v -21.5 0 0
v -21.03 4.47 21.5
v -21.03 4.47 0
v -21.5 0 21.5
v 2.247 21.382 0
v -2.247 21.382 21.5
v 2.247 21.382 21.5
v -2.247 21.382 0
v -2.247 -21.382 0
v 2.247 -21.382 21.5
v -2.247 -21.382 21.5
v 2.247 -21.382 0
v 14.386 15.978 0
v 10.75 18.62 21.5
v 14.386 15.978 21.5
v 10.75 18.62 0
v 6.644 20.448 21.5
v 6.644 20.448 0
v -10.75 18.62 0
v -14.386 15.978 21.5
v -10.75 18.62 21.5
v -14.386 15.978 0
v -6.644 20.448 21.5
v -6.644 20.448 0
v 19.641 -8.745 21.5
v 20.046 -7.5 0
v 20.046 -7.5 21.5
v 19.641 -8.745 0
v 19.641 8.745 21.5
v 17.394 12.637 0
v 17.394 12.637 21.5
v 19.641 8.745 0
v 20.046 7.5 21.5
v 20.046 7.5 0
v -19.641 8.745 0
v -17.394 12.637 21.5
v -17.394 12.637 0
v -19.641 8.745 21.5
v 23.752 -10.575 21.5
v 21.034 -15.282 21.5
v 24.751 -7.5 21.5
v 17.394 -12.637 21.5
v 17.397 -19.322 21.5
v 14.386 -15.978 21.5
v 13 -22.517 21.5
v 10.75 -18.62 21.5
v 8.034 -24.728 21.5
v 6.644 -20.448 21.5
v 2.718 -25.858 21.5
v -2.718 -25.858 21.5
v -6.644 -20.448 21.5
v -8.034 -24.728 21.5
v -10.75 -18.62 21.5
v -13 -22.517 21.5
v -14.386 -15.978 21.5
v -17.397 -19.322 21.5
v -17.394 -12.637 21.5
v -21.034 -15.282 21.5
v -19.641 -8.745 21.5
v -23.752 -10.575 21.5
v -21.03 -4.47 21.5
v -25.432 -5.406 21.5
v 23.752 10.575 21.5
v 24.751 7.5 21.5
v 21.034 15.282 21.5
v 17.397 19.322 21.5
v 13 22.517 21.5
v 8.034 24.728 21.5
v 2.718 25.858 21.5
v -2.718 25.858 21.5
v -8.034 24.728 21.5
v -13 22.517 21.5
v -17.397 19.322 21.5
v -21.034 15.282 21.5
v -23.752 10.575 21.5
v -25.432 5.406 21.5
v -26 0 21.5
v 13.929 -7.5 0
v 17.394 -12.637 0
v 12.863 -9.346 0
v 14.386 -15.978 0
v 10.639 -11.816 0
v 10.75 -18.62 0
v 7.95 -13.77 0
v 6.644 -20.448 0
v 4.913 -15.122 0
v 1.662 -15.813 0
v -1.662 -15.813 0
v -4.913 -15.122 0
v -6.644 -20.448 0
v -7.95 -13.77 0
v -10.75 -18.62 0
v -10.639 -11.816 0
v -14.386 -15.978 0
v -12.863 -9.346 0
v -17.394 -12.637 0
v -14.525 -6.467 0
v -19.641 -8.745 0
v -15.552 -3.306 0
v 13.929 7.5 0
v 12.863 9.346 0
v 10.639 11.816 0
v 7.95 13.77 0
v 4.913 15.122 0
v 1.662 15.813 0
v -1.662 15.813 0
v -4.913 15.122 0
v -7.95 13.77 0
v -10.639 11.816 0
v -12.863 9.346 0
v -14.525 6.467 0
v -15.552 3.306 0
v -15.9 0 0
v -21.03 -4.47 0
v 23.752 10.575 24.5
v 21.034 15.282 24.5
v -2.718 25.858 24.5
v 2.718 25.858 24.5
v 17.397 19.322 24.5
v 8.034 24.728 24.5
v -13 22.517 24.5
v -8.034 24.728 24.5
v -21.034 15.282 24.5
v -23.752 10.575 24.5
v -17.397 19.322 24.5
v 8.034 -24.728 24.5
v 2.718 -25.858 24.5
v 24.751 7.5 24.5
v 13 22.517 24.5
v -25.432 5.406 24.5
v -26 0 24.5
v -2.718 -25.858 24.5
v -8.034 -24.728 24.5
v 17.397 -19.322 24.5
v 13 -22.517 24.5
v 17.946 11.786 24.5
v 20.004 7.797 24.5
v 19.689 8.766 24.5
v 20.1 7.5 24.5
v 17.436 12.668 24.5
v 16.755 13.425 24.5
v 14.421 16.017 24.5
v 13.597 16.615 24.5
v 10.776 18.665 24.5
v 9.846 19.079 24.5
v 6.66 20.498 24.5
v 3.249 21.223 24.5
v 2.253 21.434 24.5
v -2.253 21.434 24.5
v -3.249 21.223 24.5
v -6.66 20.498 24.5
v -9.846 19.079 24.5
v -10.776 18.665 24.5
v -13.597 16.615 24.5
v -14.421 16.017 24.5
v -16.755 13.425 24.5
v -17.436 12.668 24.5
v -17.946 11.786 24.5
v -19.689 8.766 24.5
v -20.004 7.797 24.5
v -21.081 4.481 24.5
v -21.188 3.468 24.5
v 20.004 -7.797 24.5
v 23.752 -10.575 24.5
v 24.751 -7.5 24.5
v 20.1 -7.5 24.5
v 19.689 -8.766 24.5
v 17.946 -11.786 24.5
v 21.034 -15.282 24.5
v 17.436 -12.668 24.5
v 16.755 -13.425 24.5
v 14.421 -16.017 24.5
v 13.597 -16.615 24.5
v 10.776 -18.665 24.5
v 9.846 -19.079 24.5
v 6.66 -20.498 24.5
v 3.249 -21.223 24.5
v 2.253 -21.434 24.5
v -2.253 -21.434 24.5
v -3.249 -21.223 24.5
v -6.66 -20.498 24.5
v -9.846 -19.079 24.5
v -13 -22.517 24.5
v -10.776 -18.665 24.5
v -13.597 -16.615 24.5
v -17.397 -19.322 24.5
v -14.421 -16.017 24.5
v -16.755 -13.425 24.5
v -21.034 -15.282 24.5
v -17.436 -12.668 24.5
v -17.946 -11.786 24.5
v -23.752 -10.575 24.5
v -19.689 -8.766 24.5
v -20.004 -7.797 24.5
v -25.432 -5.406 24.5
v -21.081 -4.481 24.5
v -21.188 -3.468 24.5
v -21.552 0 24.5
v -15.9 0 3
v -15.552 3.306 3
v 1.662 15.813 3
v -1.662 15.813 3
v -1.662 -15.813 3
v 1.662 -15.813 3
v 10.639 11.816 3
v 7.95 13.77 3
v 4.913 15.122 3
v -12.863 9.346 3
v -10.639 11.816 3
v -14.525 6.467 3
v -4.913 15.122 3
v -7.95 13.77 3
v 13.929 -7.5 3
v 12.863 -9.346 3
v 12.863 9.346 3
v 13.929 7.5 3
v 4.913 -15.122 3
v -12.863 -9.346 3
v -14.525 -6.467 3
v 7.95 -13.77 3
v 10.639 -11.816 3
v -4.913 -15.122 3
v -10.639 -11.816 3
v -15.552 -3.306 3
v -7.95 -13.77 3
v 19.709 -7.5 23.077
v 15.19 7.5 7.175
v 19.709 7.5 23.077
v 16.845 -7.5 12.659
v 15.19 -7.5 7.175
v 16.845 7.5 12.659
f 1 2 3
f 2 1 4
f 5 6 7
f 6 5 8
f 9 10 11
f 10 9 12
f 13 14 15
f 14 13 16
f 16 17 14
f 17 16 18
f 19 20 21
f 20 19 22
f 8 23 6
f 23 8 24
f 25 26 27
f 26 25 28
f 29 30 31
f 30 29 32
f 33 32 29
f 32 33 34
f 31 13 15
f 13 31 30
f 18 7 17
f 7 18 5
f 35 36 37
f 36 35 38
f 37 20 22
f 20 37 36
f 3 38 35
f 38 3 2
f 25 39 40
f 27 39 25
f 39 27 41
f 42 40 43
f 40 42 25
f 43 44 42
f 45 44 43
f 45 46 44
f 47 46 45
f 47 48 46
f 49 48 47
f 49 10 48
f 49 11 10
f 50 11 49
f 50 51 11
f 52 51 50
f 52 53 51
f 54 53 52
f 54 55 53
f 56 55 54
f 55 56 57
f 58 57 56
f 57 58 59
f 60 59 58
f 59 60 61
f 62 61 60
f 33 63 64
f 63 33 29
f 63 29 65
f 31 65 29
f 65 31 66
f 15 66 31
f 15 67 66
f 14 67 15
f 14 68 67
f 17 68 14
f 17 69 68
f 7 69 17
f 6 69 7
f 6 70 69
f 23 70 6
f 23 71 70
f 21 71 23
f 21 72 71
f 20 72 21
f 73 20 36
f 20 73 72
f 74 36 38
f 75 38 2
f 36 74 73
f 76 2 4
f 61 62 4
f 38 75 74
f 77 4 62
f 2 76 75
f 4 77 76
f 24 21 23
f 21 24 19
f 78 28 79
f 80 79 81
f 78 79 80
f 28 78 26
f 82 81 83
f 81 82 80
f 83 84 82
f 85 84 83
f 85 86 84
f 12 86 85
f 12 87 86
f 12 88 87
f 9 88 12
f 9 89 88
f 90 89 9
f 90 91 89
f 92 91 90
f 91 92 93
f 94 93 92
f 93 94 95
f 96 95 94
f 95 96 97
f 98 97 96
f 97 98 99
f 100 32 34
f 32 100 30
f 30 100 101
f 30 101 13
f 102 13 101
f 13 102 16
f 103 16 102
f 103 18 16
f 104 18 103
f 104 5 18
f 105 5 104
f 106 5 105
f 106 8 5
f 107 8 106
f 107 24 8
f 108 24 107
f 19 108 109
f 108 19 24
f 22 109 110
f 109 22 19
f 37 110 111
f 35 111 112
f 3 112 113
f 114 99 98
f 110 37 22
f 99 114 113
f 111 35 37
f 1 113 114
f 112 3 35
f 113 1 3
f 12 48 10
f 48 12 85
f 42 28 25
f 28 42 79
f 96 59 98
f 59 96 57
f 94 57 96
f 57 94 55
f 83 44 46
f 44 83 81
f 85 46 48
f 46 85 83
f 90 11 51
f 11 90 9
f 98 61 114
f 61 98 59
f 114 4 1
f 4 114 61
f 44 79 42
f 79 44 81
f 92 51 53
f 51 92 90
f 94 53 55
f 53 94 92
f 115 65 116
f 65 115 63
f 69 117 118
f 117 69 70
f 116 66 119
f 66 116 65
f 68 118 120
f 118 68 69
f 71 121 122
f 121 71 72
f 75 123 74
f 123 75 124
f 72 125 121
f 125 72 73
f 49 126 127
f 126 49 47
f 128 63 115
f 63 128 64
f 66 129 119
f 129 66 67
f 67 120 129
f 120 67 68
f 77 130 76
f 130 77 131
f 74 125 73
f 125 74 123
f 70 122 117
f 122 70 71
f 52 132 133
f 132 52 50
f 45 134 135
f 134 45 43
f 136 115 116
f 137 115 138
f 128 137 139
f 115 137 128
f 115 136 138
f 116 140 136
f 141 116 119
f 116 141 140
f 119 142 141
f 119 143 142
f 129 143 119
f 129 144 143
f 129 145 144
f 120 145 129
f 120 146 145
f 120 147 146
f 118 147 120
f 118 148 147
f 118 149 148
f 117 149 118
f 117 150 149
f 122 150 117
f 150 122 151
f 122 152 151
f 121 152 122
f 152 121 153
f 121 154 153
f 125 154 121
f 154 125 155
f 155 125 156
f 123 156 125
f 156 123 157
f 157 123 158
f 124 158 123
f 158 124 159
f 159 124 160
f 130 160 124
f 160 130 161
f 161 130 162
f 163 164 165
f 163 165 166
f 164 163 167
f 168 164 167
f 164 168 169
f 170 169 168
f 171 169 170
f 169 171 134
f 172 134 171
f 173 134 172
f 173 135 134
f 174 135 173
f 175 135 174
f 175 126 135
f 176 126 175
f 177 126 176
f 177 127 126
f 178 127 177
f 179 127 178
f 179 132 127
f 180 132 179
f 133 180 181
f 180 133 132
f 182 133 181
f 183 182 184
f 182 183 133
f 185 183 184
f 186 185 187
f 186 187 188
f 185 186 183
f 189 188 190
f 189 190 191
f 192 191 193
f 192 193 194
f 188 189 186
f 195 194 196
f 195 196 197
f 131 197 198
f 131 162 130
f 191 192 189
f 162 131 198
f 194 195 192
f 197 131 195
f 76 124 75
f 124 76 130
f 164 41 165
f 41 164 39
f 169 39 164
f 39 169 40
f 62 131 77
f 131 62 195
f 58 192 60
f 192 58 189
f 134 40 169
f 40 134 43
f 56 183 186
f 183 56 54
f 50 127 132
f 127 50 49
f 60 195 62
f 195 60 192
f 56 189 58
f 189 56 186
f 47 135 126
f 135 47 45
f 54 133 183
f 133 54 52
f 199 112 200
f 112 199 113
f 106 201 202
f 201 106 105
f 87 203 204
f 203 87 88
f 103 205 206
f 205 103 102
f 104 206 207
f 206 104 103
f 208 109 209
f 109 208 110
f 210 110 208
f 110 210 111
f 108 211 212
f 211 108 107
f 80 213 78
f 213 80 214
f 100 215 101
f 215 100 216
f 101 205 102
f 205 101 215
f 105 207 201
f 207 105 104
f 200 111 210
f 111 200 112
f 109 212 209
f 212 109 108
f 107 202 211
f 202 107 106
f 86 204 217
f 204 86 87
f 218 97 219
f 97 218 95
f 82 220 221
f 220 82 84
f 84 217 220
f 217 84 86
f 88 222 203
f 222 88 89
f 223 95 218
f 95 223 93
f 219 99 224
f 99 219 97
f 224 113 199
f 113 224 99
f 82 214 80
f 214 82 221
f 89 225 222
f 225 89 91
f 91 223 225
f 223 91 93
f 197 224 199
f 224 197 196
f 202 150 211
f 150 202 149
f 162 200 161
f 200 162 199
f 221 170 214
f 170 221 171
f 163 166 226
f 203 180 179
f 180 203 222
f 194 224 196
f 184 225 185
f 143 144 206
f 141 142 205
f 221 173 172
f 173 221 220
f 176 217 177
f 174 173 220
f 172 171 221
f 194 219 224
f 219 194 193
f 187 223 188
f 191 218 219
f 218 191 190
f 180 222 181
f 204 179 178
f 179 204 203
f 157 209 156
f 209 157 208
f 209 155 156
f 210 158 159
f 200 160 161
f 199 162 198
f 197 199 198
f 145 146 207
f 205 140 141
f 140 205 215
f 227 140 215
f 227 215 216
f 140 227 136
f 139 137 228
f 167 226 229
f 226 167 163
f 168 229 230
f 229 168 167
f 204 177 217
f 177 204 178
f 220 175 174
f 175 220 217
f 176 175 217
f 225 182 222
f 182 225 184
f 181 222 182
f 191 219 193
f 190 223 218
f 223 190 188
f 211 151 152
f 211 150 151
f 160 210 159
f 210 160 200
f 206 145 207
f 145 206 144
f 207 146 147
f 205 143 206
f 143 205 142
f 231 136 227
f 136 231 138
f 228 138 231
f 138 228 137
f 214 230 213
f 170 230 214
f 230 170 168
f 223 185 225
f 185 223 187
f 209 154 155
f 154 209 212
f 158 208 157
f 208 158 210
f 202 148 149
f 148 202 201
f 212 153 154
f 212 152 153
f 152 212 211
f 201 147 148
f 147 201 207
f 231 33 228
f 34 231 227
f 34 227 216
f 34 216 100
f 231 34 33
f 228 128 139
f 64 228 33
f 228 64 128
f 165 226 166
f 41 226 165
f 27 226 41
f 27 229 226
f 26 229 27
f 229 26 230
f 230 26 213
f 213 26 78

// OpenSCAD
/////////////////////////////////////////////////////////////////////////////////
// Adapter for drilling machine in the embedded lab.
//
// Author:              Maximilian Stiefel
// Last modification:   07.06.2017
/////////////////////////////////////////////////////////////////////////////////

/////////////////////////////////////////////////////////////////////////////////
// Vars
/////////////////////////////////////////////////////////////////////////////////
cone_radius_1 = 31.8 /2;
cone_radius_2 = 48.1 /2;
cone_height = 31;

cylinder_radius = 43 /2;
cylinder_height = 21.5;

/////////////////////////////////////////////////////////////////////////////////
// Action
/////////////////////////////////////////////////////////////////////////////////

difference()
{
difference()
{
	union()
	{
		// Draw the hole to hold the drilling machine
		translate([0, 0, cylinder_height/2])
		cylinder(h = cylinder_height, r = cylinder_radius, center = true);
		translate([0, 0, 1.5 + cylinder_height])
		cylinder(h = 3, r = 26, center = true);
	}

	translate([0, 0, cone_height/2 + 3])
	union()
	{
		translate([0, 0, -20])
		cylinder(h = 15, r = cone_radius_1, center = true);
		// Draw cone measured
		cylinder(h = cone_height, r1 = cone_radius_1, r2 = cone_radius_2, center = true);
	
	}
}
translate([cone_radius_2, 0, 0])
cube([30, 15, 60], center = true);

}
